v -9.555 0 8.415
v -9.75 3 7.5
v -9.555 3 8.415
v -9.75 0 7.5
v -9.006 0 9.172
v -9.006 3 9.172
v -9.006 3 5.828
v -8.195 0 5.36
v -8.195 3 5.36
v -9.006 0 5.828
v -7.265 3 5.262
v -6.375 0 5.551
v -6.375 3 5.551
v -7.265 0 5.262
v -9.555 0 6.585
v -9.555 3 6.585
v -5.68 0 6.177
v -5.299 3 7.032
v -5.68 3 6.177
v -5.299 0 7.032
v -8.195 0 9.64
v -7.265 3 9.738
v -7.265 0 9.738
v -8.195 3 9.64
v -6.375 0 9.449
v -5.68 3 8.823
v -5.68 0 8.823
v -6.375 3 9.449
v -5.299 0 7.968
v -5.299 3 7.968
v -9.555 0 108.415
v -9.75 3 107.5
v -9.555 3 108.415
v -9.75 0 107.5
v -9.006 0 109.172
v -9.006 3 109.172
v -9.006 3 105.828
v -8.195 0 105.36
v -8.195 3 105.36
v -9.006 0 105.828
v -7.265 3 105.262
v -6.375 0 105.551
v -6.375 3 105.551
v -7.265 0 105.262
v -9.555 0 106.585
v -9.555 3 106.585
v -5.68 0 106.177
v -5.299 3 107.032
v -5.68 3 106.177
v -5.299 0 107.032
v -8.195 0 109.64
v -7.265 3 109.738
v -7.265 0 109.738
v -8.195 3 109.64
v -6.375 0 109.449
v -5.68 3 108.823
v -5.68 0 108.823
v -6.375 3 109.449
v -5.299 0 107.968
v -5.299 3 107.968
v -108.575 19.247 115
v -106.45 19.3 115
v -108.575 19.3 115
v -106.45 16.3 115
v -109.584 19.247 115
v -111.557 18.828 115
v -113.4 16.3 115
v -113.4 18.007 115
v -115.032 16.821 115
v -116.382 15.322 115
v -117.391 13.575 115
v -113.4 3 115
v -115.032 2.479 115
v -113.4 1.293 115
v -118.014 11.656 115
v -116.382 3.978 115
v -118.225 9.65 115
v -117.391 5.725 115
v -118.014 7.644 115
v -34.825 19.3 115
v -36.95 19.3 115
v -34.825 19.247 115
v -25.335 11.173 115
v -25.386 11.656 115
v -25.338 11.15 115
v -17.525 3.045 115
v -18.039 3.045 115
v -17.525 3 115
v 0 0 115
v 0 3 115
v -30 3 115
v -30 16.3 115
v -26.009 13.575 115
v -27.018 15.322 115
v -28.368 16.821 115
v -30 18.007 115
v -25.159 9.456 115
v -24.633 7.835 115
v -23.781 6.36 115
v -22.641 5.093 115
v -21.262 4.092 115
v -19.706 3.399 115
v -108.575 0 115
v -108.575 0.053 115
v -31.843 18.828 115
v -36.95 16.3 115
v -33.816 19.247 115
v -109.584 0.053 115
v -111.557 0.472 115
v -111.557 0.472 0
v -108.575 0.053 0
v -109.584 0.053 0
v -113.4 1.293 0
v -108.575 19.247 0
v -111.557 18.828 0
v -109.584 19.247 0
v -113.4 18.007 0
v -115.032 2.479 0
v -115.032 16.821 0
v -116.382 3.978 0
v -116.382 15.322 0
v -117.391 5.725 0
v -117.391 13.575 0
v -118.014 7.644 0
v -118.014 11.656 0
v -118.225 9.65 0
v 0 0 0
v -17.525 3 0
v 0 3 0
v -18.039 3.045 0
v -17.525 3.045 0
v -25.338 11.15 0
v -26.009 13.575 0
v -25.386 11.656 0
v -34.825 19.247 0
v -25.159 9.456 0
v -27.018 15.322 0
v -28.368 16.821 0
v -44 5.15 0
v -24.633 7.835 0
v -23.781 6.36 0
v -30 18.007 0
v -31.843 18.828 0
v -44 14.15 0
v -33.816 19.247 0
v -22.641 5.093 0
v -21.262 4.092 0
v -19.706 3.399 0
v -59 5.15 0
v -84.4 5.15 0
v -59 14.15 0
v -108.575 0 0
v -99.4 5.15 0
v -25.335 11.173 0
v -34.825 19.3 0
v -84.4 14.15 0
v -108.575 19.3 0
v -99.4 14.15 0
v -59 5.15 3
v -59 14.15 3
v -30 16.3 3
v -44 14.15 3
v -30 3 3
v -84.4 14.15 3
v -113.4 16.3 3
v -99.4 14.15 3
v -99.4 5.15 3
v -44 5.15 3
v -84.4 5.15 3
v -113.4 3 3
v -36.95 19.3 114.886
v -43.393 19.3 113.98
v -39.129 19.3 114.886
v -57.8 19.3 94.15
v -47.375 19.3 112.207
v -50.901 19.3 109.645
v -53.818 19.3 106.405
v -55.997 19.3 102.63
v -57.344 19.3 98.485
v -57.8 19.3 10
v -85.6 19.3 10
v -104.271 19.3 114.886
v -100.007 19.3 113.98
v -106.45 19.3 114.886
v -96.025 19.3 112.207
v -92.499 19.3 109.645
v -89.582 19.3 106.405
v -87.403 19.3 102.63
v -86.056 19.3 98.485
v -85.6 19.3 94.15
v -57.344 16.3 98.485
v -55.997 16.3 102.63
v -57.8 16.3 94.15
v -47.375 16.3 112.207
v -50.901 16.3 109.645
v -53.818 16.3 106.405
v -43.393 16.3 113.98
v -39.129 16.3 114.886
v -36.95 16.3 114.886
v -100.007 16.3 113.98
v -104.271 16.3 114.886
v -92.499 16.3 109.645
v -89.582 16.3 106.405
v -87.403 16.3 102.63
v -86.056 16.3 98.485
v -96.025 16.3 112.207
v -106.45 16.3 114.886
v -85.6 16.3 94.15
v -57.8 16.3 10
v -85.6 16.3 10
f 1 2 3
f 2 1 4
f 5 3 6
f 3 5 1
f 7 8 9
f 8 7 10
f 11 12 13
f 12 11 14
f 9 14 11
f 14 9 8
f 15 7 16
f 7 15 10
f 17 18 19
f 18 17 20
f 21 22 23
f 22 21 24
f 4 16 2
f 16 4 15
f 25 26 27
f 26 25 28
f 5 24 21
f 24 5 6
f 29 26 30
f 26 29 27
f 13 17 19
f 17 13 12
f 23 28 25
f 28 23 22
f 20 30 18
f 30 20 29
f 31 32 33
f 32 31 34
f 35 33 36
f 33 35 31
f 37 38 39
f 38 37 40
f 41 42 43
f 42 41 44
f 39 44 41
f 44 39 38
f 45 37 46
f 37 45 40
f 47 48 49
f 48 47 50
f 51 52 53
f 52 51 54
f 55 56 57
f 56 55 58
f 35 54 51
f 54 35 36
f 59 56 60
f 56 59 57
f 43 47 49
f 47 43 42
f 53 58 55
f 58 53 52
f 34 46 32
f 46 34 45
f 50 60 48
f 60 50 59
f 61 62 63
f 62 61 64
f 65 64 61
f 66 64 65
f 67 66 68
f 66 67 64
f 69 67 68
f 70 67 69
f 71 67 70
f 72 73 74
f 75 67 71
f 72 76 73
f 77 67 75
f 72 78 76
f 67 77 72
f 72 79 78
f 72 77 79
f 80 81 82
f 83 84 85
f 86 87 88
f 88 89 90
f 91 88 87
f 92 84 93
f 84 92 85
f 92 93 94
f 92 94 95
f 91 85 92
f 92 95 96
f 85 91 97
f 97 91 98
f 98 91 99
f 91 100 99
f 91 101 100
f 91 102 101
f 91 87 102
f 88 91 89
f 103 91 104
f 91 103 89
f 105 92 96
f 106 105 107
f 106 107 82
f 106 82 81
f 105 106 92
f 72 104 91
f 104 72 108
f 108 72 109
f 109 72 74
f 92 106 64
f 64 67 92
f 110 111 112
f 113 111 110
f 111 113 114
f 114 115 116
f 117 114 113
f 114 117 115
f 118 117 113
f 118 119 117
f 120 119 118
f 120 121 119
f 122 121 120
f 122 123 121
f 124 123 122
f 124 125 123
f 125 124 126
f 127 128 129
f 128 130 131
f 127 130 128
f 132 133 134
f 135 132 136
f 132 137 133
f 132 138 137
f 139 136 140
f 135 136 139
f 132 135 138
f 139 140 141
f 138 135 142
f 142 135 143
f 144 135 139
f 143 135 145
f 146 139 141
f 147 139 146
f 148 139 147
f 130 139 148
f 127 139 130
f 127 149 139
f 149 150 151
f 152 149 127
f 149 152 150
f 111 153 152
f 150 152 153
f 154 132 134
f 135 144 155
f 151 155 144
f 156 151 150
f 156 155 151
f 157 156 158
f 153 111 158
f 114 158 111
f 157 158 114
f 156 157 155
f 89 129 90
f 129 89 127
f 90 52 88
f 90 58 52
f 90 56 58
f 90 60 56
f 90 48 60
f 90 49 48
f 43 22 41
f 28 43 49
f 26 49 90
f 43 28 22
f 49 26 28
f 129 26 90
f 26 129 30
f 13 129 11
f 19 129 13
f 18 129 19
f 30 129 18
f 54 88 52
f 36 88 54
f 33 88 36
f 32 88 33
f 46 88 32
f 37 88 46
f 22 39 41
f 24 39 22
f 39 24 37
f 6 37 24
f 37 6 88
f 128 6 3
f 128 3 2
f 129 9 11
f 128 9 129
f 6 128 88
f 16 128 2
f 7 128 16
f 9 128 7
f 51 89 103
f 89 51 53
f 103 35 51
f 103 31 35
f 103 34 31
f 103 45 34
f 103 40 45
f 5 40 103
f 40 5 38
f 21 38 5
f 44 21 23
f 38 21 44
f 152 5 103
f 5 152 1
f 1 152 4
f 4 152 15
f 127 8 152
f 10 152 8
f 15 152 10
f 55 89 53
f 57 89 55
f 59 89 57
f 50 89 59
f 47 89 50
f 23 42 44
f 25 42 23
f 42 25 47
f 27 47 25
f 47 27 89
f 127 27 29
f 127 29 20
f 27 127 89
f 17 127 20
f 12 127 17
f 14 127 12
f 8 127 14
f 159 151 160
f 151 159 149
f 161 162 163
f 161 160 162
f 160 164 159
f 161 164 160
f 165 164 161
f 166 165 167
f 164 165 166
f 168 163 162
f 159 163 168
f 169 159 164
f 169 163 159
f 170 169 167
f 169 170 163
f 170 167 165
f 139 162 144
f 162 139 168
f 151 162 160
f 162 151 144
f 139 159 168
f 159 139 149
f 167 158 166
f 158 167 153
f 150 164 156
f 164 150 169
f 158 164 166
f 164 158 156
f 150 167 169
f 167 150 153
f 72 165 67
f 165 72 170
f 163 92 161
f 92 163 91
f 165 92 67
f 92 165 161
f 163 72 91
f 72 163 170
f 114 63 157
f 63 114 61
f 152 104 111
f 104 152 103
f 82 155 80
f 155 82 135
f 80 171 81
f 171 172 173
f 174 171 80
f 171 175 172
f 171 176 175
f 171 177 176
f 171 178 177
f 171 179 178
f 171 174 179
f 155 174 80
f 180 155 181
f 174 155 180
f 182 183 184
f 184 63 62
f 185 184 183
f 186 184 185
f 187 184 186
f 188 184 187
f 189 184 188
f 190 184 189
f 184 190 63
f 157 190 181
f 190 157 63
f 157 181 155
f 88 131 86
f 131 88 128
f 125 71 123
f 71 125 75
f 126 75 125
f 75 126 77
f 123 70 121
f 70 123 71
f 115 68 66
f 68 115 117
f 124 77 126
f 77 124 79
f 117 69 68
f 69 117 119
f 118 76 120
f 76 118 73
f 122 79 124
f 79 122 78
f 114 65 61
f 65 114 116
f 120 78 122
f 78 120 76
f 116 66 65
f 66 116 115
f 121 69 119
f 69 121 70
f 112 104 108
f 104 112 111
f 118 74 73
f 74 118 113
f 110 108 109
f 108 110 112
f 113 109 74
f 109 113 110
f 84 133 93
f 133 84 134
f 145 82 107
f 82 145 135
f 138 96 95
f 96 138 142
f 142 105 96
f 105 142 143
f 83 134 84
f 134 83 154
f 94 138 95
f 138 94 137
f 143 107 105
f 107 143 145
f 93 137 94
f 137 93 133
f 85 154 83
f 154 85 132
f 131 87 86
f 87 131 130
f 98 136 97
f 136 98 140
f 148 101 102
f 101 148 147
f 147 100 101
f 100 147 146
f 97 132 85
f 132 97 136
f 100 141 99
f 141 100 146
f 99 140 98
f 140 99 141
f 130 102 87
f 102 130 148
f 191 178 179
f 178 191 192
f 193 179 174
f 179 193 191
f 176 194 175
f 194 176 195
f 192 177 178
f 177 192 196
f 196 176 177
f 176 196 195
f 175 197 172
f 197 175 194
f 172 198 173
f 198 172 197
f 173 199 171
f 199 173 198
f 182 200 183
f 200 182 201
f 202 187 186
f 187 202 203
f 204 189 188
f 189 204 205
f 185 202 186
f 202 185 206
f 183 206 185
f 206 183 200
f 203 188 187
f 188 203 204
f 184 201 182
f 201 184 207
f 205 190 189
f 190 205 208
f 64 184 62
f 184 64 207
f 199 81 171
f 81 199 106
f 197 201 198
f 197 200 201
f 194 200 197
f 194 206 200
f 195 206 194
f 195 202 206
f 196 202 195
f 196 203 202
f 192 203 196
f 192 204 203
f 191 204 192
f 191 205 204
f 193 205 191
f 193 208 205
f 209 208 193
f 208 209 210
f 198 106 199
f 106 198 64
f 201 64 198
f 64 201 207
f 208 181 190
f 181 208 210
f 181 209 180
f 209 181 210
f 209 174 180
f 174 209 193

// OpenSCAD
drive_width = 83.4;
drive_thick = 13.3;
drive_length = 130;
vesa_size = 100;
back_thick = 3;
back_height = 115;

$fs=1;

module drive_box() {
  color("green")
  union() {
    cube([drive_width, drive_thick, drive_length]);
    // usb plug opening
    cable_width = 15;
    for(i = [14, drive_width-14-cable_width])
      translate([i, (drive_thick-9)/2, -10])
        cube([cable_width, 9, 10]);
  }
}

module backplate() {
  vesa_r = 4.5/2;
  back_offset = (back_height-vesa_size)/2;
  difference() {
    cube([40, back_thick, back_height]);

    for (i = [back_offset, back_height-back_offset])
      translate([back_offset, back_thick*2, i])
        rotate([90, 0, 0])
          cylinder(r=vesa_r, h=back_thick*3);
  }
}

module main_body() {
  body_thick = drive_thick+back_thick*2;
  translate([-body_thick, 0, 0])
  difference() {
    union() {
      translate([body_thick*5/4, 0, 0])
        cube([drive_width-body_thick/2, body_thick, back_height]);
      translate([body_thick/4+2, 0, 0])
        cube([body_thick*3/4, body_thick/2, back_height]);
      translate([drive_width+body_thick*3/4, body_thick/2, 0])
        cylinder(d=body_thick, h=back_height);
      translate([body_thick*5/4, body_thick/2, 0])
        cylinder(d=body_thick, h=back_height);
    }
    #translate([(body_thick-back_thick+1)*3/8, (body_thick-back_thick)/2+back_thick, 0])
      cylinder(d=body_thick-back_thick, h=back_height);
  }
}

module front_cutout() {
  corner_radius = drive_width/4;
  union() {
    translate([drive_width/3, 0, 10])
      cube([drive_width/3, back_thick*3, back_height]);
    translate([(drive_width-(drive_width/3+2*corner_radius))/2, 0, back_height-corner_radius])
      difference() {
          cube([drive_width/3+2*corner_radius, back_thick*3, back_height/3]);
          for (i=[0, drive_width/3+2*corner_radius])
          #translate([i, back_thick*2, 0])
            rotate([90, 0, 0])
            cylinder(r=corner_radius, h=back_thick*3);
      }
  }
}

module drive_mount() {
  difference() {
    union() {
      backplate();
      translate([30, 0, 0])
        main_body();
    }
    // drive box
    translate([30, back_thick, back_thick])
      drive_box();
    // front cutout
    translate([30, back_thick+drive_thick, 0])
      front_cutout();
  }
}

mirror([1, 0, 0])
  drive_mount();
